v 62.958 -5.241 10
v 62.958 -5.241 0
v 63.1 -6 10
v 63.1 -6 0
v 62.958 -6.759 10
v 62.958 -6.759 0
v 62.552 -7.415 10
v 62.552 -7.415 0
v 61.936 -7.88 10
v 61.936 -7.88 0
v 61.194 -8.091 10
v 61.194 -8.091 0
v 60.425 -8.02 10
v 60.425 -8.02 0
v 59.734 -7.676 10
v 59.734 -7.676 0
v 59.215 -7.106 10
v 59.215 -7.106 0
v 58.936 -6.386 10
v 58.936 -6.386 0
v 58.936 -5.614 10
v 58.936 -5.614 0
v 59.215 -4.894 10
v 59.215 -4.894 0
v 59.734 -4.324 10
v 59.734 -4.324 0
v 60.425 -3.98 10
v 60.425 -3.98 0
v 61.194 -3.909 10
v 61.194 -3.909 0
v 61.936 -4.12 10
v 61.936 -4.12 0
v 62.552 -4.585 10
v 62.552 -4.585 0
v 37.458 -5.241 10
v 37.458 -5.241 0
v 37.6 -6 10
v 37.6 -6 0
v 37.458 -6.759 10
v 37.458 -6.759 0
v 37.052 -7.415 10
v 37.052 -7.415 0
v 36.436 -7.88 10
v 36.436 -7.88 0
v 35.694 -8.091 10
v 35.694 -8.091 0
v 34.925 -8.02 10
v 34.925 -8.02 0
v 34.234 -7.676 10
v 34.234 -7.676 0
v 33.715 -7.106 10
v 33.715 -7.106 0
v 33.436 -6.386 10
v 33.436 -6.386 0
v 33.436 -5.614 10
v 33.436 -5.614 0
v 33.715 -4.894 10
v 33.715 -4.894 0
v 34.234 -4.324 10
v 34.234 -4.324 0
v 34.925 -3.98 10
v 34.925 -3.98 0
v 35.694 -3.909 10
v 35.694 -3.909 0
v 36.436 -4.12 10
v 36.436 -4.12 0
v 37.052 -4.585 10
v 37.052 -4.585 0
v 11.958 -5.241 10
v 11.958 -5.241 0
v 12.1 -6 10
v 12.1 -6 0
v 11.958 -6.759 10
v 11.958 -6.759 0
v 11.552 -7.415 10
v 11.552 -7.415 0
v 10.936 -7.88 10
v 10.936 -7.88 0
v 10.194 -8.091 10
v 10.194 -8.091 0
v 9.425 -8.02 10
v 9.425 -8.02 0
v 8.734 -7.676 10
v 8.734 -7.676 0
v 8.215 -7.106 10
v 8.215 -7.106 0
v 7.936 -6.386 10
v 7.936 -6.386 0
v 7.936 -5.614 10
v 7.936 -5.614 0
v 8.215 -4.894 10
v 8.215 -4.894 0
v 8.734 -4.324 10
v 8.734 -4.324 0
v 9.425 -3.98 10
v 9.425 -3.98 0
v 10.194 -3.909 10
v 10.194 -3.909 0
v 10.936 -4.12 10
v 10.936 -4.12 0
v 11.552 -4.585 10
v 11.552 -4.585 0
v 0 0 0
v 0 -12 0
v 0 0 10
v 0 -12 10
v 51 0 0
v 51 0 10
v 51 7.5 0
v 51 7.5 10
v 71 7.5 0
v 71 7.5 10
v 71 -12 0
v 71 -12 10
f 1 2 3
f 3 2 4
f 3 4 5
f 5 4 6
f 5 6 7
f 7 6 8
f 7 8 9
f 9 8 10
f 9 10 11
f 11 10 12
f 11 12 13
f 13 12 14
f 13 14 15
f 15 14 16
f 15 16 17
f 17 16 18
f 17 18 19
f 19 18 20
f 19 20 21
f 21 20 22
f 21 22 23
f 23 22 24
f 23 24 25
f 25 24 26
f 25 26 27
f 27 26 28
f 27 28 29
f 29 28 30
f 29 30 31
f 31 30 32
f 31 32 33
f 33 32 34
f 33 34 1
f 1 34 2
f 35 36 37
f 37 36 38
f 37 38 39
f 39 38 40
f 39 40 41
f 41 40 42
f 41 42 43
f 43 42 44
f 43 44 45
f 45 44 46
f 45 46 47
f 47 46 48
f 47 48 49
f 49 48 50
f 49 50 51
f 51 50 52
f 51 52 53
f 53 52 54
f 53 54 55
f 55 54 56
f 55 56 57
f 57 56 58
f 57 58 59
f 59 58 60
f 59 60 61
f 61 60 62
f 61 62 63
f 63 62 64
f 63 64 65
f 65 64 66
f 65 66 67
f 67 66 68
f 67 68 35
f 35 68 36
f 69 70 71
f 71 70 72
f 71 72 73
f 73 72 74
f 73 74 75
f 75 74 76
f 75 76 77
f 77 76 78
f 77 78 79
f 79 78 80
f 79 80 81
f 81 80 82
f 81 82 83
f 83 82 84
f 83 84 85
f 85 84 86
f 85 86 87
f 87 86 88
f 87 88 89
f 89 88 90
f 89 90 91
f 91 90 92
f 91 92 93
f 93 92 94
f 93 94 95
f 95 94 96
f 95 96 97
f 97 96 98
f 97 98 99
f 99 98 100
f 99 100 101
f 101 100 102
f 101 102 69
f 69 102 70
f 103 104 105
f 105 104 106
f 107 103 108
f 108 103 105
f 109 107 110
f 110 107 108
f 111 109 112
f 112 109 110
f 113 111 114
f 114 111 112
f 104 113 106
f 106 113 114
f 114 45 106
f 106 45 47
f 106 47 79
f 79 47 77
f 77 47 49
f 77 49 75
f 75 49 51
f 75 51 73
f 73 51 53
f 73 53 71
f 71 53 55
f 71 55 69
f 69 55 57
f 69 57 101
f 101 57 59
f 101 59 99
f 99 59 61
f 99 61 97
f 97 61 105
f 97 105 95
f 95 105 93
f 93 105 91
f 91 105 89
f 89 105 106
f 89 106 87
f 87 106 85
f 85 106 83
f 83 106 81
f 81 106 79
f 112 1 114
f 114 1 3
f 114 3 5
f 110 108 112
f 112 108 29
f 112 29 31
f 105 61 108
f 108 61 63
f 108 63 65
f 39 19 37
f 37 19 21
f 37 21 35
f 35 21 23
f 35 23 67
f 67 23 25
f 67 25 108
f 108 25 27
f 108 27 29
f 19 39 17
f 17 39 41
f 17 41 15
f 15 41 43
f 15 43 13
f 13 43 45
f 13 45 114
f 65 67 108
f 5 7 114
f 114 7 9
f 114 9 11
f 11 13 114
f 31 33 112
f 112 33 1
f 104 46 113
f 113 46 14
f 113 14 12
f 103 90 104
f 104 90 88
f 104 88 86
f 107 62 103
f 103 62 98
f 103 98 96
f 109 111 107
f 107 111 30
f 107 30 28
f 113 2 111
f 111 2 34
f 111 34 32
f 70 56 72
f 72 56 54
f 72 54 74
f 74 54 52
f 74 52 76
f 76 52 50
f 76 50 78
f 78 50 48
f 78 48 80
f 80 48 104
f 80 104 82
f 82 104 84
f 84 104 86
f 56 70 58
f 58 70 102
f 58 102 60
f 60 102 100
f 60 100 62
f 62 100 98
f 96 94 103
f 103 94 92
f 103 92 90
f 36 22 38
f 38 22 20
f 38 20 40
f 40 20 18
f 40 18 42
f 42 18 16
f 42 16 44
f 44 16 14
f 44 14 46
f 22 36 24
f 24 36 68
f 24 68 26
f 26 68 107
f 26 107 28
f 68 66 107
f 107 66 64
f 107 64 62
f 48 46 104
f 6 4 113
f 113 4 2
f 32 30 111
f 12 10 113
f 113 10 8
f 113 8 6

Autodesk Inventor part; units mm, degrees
ref_plane "YZ Plane" through (0, 0, 0) normal (1, 0, 0) x (0, 1, 0)
ref_plane "XZ Plane" through (0, 0, 0) normal (0, 1, 0) x (-1, 0, 0)
ref_plane "XY Plane" through (0, 0, 0) normal (0, 0, 1) x (1, 0, 0)
sketch "Sketch1" plane through (0, 0, 0) normal (0, 0, 1) x (1, 0, 0)
  line L0 (0, 0) -> (71, 0)
  line L1 (71, 0) -> (71, -12)
  line L2 (71, -12) -> (0, -12)
  line L3 (0, -12) -> (0, 0)
  circle A0 centre (10, -6) radius 2.1
  circle A1 centre (35.5, -6) radius 2.1
  circle A2 centre (61, -6) radius 2.1
  line L4 (71, 0) -> (51, 0)
  line L5 (51, 0) -> (51, 7.5)
  line L6 (51, 7.5) -> (71, 7.5)
  line L7 (71, 7.5) -> (71, 0)
  point P0 (0, -6)
  point P1 (71, -6)
  point P2 (35.5, 0)
  dimension "d0" = 71
  dimension "d1" = 12
  dimension "d2" = 10
  dimension "d3" = 6
  dimension "d4" = 10
  dimension "d5" = 6
  dimension "d6" = 6
  dimension "d7" = 35.5
  dimension "d8" = 4.2
  dimension "d9" = 4.2
  dimension "d10" = 4.2
  dimension "d11" = 20
  dimension "d12" = 7.5
extrude "Extrusion1" add sketch "Sketch1" along normal blind 10
equation "\"d3\" = 0.5 * d1"
equation "\"d4\" = d2"
equation "\"d5\" = d3"
equation "\"d6\" = d3"
equation "\"d7\" = 0.5 * d0"
equation "\"d9\" = d8"
equation "\"d10\" = d8"
properties part number "Touchscreen mount v01"
